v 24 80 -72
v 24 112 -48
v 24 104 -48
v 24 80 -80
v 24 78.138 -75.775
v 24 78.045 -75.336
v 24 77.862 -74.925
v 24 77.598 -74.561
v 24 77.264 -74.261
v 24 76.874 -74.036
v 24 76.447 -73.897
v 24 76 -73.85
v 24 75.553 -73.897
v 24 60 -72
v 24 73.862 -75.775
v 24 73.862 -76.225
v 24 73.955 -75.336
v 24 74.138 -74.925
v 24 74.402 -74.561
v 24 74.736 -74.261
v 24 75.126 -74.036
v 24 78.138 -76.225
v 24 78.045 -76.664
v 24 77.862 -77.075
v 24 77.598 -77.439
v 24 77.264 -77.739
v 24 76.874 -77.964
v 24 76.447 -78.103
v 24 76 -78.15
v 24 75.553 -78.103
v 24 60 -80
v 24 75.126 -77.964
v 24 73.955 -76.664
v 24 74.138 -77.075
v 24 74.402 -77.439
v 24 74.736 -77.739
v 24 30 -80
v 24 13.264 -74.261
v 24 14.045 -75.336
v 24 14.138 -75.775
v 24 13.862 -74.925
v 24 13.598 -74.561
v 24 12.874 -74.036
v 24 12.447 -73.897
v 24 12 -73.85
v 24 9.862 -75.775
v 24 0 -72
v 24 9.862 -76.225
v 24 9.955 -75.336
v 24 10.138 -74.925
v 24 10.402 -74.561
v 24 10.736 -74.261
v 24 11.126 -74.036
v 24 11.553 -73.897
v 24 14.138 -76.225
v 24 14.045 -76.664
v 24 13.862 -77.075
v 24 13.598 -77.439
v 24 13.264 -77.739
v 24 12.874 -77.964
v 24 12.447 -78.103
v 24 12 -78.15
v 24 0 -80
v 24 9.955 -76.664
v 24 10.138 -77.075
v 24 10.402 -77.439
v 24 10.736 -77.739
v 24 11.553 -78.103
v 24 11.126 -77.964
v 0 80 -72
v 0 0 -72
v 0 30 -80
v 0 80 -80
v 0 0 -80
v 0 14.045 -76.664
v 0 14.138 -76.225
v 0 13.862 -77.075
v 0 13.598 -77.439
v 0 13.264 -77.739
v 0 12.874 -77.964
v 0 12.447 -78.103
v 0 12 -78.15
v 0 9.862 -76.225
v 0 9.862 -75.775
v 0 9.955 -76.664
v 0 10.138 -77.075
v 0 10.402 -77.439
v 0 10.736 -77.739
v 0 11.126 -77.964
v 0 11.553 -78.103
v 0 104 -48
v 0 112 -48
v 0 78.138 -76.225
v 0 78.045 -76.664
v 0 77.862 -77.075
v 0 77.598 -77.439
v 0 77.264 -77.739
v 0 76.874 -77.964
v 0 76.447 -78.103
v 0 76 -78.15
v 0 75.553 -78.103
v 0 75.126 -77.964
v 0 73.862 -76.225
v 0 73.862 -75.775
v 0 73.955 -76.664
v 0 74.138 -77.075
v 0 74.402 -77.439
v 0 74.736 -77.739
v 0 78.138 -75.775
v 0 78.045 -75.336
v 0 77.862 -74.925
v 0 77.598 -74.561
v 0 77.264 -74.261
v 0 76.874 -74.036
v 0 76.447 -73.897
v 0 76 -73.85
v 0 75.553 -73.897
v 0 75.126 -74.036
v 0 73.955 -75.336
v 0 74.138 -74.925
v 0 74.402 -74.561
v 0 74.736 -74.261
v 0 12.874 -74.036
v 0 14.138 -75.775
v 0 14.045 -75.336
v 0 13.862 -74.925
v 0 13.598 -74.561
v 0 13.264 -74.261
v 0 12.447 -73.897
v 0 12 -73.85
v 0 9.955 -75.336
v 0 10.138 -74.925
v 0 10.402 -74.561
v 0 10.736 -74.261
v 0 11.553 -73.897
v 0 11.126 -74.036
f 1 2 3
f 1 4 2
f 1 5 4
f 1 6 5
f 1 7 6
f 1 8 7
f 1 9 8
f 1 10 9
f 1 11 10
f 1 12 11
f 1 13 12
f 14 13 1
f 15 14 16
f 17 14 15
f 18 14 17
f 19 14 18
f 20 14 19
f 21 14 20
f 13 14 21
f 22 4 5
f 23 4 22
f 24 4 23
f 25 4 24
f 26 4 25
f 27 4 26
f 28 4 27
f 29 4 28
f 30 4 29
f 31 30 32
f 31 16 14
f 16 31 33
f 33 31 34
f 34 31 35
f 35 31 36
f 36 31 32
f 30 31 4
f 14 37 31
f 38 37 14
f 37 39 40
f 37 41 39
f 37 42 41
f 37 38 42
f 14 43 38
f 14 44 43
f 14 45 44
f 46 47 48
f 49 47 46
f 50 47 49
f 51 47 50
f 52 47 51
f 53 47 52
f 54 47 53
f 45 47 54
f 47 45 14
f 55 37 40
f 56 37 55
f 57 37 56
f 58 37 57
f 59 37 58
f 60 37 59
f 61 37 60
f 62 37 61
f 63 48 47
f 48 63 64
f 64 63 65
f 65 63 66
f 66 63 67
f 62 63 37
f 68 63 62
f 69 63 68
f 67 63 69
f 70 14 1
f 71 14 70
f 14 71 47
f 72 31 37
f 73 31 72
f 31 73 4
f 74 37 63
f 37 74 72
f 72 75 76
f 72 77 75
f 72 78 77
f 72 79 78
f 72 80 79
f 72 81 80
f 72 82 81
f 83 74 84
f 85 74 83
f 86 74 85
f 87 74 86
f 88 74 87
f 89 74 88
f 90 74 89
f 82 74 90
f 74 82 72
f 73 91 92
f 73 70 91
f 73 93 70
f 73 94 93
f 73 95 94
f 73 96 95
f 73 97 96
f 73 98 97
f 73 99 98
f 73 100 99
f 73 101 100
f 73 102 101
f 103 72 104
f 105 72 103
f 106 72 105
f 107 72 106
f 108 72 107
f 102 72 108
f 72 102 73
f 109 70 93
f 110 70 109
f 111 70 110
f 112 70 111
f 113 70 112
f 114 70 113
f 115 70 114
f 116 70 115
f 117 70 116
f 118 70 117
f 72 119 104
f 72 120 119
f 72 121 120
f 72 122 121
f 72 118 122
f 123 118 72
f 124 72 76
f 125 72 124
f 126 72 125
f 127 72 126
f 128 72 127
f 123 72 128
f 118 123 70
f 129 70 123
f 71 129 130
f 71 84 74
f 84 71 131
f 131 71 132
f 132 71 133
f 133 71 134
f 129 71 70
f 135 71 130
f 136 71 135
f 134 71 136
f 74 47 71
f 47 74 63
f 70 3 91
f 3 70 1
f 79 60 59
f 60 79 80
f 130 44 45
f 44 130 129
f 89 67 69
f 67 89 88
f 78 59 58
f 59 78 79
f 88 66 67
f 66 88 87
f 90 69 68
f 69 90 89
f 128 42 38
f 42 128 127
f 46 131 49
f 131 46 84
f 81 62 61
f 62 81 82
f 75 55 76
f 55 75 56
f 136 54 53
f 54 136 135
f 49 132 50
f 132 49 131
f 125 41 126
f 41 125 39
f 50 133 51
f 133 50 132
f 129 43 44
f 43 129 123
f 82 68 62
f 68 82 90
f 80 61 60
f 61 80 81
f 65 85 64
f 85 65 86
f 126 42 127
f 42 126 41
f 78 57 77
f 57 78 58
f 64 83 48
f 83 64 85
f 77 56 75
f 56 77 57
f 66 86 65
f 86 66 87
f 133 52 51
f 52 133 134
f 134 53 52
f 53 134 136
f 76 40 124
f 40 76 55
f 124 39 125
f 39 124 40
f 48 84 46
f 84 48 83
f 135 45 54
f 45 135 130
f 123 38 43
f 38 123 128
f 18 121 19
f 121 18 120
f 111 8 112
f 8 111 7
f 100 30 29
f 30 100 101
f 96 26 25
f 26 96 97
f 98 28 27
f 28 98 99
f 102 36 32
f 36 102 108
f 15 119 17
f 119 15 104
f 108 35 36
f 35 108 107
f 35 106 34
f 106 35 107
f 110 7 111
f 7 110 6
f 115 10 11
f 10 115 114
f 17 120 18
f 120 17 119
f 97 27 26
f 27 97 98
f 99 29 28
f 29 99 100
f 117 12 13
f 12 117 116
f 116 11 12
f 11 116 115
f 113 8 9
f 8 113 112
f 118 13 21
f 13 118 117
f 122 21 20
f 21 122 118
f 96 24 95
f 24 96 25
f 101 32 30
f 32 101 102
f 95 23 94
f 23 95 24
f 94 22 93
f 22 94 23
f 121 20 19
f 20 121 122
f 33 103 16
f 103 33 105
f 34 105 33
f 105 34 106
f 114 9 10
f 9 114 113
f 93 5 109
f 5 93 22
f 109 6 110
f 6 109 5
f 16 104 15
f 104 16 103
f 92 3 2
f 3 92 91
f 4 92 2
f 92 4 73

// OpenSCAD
// left exit
color ("plum")
difference() {
union() {
    // left exit track
    translate([0,0,-80])
    cube([24,80,8]);
    
    // right side
    translate([0,76,-76])
    rotate([-45,0,0])
    cube([25,6,60]);
    //*/
}
    // left bottom hole
    translate([-4,12,-76])
    rotate([0,90,0])
    cylinder(r=2.15,60, $fn=30);

    // right bottom hole
    translate([-4,76,-76])
    rotate([0,90,0])
    cylinder(r=2.15,60, $fn=30);

    // top clean up
    translate([0,60,-48])
    cube([40,80,40]);
    
    // bottom clean up
    translate([0,30,-92])
    cube([40,60,12]);
    
    // bottom right corner clean up
    translate([0,80,-80])
    rotate([-45,0,0])
    cube([50,16,70]);
    
    // front clean up
    translate([24,60,-100])
    cube([15,60,100]);
}
